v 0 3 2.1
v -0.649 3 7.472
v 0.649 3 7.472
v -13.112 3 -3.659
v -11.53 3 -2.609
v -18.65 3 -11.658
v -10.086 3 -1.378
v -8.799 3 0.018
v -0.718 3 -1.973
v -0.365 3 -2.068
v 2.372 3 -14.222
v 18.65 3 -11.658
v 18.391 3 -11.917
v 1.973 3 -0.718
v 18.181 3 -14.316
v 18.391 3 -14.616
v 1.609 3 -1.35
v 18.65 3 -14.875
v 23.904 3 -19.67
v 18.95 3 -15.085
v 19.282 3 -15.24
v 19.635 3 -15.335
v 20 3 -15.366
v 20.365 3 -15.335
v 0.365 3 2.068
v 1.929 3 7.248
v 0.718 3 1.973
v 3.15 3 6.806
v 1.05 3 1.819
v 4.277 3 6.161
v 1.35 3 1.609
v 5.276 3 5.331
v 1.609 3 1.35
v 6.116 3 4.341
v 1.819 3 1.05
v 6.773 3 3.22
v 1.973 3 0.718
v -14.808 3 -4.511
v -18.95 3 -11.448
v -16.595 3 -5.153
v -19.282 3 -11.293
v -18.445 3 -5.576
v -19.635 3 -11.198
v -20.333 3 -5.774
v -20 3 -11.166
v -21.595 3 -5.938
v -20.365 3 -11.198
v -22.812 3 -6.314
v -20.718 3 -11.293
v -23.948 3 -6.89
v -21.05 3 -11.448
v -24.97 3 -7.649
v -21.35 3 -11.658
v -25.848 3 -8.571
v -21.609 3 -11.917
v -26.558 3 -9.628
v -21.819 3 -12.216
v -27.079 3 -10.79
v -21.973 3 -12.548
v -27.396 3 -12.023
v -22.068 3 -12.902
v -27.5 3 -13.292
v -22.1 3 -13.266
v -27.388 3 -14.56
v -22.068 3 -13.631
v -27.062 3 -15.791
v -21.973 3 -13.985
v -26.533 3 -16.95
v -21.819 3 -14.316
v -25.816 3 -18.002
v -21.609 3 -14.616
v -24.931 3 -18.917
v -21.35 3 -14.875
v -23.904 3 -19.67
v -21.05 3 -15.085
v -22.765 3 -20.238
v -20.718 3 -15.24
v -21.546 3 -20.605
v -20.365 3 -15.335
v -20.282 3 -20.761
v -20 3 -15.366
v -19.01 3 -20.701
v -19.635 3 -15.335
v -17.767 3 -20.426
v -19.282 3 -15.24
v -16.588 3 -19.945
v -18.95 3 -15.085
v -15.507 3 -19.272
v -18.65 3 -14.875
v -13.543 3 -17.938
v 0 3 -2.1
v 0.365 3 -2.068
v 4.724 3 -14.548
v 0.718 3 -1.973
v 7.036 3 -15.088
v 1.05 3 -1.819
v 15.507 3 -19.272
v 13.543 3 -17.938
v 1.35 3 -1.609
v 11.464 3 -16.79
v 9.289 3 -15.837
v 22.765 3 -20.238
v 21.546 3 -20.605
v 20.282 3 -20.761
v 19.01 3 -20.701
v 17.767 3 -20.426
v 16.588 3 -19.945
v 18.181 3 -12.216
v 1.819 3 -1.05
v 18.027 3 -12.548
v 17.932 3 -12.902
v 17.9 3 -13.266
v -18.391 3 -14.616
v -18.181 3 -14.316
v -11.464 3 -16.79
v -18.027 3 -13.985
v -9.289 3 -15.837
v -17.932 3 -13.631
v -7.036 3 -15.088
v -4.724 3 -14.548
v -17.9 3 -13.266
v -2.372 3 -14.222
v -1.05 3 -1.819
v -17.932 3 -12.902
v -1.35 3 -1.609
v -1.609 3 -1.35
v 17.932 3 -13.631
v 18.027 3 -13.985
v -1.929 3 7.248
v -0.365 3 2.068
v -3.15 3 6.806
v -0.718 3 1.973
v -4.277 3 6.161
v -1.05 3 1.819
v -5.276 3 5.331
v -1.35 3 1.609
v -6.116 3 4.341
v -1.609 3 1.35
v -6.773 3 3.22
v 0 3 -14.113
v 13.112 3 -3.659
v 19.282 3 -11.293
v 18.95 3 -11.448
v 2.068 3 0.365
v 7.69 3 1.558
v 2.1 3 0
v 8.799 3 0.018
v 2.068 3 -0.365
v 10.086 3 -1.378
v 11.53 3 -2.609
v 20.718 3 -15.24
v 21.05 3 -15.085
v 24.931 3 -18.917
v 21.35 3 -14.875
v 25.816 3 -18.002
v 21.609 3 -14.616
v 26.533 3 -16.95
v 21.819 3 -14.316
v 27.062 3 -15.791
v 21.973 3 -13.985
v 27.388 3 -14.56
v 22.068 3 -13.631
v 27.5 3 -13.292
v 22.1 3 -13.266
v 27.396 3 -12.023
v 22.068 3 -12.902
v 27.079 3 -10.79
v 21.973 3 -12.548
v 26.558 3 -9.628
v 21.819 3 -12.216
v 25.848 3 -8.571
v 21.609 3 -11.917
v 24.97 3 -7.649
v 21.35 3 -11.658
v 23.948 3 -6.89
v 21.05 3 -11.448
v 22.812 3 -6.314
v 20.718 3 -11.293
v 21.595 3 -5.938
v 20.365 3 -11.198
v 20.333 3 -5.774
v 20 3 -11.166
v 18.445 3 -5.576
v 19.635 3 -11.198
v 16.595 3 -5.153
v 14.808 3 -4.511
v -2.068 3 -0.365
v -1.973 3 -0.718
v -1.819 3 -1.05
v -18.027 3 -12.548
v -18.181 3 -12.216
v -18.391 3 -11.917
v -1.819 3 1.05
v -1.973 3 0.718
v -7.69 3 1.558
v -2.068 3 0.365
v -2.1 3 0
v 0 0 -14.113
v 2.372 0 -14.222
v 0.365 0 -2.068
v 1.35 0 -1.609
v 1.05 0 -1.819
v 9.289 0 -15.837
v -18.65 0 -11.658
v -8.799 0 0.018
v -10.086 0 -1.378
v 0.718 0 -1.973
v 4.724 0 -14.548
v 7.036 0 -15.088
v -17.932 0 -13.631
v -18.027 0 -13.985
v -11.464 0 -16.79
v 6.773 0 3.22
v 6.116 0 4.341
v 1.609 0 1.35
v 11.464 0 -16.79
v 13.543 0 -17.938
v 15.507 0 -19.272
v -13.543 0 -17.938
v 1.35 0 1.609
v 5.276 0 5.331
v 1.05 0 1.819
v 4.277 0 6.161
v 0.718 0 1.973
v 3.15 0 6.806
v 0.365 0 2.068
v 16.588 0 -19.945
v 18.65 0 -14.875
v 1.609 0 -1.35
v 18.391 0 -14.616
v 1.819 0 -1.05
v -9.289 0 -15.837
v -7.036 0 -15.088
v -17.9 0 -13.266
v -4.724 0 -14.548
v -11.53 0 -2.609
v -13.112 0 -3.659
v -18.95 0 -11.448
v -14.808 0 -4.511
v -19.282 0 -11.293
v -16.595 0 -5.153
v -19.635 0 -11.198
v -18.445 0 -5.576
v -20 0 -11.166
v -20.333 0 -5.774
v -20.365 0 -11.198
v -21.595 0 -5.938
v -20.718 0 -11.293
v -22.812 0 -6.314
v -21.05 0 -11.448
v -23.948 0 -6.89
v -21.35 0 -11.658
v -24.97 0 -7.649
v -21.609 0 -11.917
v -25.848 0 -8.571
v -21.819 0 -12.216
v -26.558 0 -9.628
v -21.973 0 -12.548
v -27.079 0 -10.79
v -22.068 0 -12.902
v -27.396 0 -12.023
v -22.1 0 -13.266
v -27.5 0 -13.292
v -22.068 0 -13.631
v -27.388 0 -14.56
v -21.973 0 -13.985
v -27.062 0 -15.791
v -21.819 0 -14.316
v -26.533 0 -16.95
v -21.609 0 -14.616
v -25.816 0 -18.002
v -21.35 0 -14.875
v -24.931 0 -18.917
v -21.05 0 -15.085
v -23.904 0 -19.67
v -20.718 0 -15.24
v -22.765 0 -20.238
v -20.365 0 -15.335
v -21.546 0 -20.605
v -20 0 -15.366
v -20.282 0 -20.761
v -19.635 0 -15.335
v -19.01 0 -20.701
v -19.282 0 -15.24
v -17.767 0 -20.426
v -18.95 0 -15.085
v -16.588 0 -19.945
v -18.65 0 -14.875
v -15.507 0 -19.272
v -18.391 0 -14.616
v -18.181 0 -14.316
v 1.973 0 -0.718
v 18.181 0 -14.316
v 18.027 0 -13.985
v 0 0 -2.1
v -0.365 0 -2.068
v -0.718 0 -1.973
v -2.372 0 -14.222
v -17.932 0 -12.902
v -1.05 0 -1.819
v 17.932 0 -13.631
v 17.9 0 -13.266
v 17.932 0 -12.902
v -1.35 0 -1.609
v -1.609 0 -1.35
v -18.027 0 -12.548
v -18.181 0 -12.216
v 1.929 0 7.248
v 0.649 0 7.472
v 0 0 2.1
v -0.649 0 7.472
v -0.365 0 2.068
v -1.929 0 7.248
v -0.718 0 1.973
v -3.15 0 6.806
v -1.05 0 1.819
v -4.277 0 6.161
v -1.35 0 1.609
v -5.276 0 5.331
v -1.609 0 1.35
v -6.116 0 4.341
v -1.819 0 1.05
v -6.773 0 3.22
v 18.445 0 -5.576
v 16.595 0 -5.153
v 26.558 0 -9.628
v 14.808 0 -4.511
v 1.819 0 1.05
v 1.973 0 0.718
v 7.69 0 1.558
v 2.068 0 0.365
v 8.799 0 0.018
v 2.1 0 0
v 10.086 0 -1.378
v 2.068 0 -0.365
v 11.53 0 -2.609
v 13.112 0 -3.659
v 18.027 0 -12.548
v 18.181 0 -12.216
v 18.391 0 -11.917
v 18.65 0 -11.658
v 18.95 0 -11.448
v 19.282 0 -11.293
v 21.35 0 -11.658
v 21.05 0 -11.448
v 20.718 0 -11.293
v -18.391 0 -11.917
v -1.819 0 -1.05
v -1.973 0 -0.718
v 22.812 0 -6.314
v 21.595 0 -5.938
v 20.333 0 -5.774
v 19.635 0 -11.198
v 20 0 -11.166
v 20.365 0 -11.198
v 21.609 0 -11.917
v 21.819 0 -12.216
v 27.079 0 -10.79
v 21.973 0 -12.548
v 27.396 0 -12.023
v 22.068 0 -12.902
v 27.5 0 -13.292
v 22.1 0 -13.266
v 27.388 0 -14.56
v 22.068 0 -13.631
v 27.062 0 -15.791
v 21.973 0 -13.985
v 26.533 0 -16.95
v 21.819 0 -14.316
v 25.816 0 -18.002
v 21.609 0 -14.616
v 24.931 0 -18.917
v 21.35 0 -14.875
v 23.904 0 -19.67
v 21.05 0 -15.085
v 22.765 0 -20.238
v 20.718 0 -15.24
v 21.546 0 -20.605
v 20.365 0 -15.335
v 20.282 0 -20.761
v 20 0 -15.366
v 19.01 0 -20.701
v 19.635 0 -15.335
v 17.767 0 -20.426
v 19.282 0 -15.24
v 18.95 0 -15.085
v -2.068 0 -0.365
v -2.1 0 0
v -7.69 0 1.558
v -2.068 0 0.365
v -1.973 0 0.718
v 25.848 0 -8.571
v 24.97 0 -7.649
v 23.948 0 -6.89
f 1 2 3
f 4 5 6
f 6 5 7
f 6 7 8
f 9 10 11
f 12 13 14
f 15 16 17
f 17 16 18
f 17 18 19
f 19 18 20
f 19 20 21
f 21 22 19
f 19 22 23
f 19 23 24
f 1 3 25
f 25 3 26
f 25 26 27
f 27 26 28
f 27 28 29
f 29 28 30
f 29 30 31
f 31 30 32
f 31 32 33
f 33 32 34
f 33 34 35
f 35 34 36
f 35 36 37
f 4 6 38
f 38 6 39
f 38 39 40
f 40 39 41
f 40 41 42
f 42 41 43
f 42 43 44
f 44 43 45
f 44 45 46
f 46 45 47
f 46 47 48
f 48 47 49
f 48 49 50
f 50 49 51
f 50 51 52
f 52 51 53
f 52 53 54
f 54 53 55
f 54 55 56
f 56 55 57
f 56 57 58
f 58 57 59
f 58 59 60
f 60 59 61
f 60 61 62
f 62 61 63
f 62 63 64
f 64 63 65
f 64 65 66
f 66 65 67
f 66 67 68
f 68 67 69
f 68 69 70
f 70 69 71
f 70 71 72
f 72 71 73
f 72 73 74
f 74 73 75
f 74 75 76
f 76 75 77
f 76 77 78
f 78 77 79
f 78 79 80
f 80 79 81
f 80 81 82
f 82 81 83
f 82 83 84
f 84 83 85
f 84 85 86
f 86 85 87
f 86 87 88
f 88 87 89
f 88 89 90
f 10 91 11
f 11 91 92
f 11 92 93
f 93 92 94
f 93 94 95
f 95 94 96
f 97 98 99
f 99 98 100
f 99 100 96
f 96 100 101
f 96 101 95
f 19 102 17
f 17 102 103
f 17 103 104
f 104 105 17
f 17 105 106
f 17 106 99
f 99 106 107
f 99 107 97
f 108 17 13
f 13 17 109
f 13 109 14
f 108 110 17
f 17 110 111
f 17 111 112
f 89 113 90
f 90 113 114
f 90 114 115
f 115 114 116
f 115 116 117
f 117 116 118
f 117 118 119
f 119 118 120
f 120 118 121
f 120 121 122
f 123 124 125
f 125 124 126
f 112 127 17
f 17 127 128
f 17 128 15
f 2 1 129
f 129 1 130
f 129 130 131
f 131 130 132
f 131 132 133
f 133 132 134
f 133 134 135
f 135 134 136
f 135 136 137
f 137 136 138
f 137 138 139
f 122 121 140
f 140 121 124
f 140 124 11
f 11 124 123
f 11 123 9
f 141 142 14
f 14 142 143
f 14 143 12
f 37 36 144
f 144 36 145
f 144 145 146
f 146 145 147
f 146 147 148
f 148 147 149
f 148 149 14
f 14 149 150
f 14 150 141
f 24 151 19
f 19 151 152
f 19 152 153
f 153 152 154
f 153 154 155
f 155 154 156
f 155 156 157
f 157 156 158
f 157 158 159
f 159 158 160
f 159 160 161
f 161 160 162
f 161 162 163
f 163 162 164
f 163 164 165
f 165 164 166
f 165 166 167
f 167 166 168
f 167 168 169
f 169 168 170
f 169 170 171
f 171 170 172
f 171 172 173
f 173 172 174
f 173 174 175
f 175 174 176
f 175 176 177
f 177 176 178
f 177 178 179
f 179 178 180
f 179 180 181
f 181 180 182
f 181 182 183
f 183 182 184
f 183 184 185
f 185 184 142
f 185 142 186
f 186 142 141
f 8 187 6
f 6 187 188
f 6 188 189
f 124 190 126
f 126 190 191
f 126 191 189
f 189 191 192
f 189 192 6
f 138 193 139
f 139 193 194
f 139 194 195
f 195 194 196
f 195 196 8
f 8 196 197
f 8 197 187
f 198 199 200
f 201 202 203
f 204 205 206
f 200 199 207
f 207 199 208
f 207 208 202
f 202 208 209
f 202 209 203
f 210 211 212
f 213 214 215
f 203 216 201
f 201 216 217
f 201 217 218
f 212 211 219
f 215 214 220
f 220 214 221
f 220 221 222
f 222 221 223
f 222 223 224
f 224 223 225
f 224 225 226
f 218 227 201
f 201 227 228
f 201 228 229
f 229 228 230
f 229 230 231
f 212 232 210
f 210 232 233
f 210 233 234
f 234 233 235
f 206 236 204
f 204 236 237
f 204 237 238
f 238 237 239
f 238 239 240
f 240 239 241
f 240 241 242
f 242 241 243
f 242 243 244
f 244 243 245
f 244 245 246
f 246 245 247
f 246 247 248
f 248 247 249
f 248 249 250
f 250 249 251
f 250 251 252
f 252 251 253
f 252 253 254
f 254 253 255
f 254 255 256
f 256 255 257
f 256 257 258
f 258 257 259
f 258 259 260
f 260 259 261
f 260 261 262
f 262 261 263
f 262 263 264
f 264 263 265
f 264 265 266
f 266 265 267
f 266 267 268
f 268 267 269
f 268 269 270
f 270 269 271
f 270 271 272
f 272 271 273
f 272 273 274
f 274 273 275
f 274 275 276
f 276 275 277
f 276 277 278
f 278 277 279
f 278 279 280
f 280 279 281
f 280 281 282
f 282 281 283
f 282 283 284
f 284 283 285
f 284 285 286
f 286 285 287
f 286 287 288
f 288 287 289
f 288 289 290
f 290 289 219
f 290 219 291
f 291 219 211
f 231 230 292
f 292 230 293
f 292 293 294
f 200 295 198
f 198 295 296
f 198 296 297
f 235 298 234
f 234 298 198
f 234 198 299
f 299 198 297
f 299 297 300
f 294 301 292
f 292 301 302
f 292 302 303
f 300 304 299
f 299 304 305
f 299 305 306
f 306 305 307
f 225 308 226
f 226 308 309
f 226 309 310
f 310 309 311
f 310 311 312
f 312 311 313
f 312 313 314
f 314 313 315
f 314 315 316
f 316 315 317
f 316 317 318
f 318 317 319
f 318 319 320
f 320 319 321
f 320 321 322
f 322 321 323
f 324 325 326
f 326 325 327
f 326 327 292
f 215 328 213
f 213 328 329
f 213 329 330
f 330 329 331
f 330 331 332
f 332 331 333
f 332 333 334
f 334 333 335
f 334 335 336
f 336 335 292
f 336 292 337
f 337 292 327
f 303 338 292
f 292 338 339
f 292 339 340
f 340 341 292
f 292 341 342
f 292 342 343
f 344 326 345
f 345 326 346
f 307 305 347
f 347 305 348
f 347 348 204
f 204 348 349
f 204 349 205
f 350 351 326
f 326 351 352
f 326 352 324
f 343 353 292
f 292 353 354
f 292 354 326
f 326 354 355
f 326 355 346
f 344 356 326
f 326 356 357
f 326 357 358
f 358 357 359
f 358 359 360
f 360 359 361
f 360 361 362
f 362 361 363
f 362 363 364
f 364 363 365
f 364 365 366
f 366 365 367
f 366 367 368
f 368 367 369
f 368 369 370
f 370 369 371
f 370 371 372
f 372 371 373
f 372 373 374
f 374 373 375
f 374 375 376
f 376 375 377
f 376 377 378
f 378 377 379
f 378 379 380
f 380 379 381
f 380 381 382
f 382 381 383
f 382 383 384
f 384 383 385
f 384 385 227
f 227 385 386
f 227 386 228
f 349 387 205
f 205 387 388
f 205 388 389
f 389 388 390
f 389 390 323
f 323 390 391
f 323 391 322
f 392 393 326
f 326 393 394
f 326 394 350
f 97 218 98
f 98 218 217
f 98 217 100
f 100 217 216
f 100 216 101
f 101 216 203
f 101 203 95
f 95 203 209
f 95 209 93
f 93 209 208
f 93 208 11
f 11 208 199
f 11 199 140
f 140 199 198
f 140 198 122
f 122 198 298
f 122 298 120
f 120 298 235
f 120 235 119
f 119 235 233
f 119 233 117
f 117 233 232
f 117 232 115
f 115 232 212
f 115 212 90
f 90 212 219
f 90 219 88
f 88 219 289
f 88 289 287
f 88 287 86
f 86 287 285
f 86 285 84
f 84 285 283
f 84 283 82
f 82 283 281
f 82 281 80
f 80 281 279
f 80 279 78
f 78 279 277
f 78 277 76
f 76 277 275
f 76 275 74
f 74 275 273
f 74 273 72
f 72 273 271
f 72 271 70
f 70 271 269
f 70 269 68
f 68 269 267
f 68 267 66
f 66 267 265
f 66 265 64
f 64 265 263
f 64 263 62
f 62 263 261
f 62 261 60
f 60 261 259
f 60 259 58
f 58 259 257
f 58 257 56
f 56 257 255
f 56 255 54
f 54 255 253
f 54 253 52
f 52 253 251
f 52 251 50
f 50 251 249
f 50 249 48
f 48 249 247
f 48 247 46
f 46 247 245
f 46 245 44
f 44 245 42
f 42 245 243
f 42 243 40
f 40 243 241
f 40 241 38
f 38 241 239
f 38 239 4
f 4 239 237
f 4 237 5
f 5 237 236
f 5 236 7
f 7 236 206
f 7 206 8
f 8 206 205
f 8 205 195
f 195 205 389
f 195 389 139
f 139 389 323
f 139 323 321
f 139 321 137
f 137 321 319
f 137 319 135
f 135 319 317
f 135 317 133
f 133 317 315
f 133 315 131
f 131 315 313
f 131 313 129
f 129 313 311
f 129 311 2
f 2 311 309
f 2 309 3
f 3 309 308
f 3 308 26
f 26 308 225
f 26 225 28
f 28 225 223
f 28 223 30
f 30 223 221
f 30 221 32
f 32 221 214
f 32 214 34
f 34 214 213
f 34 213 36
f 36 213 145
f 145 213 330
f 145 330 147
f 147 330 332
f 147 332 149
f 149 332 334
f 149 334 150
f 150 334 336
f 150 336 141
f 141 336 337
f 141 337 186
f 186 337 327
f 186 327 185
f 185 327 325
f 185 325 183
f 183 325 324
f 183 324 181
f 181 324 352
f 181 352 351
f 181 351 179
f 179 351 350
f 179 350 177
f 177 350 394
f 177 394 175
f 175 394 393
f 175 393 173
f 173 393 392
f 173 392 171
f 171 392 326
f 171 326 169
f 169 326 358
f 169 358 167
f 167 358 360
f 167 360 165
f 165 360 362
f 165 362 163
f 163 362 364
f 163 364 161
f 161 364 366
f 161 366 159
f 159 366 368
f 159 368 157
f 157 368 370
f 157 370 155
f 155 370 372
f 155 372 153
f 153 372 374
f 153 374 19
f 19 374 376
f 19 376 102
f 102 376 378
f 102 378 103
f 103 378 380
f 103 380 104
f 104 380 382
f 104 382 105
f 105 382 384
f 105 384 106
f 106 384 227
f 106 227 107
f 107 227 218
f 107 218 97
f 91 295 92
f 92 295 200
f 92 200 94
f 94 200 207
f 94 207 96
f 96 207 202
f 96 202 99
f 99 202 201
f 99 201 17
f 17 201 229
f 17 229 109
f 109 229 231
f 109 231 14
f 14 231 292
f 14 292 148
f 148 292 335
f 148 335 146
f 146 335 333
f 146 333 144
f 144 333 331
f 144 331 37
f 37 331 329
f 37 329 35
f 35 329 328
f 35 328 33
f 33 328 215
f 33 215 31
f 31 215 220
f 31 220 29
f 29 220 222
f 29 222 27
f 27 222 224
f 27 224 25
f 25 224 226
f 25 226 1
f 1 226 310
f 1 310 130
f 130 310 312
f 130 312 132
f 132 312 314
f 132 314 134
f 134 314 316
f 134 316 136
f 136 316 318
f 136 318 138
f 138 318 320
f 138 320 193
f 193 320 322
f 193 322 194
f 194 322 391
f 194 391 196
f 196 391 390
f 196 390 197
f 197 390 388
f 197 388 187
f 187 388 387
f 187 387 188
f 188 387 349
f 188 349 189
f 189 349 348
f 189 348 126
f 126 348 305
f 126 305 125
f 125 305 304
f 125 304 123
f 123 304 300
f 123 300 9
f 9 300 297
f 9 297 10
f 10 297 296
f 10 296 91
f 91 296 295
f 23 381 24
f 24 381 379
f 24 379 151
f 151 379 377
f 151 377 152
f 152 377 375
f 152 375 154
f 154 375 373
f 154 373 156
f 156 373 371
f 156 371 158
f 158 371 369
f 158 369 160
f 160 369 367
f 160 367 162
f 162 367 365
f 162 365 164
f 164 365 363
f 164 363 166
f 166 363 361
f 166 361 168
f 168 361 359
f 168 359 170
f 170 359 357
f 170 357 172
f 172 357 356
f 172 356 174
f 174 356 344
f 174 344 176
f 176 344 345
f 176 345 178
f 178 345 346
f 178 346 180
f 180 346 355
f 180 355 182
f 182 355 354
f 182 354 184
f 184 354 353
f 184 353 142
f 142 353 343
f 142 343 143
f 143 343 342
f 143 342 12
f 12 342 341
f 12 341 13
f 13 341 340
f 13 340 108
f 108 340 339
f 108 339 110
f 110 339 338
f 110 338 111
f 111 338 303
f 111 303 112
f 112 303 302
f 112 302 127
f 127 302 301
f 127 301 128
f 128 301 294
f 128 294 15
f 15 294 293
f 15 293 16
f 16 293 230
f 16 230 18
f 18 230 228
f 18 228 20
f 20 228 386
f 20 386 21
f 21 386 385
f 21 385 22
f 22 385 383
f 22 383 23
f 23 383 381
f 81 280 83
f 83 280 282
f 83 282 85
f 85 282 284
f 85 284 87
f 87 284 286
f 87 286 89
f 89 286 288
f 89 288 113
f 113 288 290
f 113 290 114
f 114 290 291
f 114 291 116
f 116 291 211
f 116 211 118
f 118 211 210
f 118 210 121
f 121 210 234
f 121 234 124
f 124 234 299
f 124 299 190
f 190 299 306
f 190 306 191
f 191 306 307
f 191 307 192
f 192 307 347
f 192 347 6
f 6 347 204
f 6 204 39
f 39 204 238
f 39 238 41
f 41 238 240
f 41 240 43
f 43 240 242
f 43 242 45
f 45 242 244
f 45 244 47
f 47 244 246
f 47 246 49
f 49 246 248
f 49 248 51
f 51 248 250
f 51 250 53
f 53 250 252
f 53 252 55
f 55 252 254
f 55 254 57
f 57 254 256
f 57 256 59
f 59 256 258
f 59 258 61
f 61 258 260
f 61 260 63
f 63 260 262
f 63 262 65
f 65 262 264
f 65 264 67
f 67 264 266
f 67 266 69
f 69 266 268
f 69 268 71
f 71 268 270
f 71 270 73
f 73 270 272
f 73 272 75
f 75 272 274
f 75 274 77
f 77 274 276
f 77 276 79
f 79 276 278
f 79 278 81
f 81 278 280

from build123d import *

# Parameters (mm, degrees)
SKETCH1_R           = 2.1
BOSS_EXTRUDE1_DEPTH = 3


with BuildPart() as part:
    # Sketch1 → Boss-Extrude1 (new body)
    with BuildSketch(Plane(origin=(0, 0, 0), x_dir=(1, 0, 0), z_dir=(0, 1, 0))):
        with BuildLine():
            ThreePointArc((-6.773431823, -3.22034491), (0, -7.5), (6.773431823, -3.22034491))
            ThreePointArc((6.773431823, -3.22034491), (12.3053133, 3.157859017), (20.332742003, 5.773883946))
            ThreePointArc((20.332742003, 5.773883946), (27.062266479, 15.791255027), (15.507209772, 19.271899728))
            ThreePointArc((15.507209772, 19.271899728), (0, 14.113175247), (-15.507209772, 19.271899728))
            ThreePointArc((-15.507209772, 19.271899728), (-27.062266479, 15.791255027), (-20.332742003, 5.773883946))
            ThreePointArc((-20.332742003, 5.773883946), (-12.3053133, 3.157859017), (-6.773431823, -3.22034491))
        make_face()
        with Locations(Location((0, 0, 0), (0, 0, 270))):
            Circle(SKETCH1_R, mode=Mode.SUBTRACT)
        with Locations(Location((20, 13.266499161, 0), (0, 0, 270))):
            Circle(SKETCH1_R, mode=Mode.SUBTRACT)
        with Locations(Location((-20, 13.266499161, 0), (0, 0, 270))):
            Circle(SKETCH1_R, mode=Mode.SUBTRACT)
    extrude(amount=BOSS_EXTRUDE1_DEPTH)


solid = part.part
